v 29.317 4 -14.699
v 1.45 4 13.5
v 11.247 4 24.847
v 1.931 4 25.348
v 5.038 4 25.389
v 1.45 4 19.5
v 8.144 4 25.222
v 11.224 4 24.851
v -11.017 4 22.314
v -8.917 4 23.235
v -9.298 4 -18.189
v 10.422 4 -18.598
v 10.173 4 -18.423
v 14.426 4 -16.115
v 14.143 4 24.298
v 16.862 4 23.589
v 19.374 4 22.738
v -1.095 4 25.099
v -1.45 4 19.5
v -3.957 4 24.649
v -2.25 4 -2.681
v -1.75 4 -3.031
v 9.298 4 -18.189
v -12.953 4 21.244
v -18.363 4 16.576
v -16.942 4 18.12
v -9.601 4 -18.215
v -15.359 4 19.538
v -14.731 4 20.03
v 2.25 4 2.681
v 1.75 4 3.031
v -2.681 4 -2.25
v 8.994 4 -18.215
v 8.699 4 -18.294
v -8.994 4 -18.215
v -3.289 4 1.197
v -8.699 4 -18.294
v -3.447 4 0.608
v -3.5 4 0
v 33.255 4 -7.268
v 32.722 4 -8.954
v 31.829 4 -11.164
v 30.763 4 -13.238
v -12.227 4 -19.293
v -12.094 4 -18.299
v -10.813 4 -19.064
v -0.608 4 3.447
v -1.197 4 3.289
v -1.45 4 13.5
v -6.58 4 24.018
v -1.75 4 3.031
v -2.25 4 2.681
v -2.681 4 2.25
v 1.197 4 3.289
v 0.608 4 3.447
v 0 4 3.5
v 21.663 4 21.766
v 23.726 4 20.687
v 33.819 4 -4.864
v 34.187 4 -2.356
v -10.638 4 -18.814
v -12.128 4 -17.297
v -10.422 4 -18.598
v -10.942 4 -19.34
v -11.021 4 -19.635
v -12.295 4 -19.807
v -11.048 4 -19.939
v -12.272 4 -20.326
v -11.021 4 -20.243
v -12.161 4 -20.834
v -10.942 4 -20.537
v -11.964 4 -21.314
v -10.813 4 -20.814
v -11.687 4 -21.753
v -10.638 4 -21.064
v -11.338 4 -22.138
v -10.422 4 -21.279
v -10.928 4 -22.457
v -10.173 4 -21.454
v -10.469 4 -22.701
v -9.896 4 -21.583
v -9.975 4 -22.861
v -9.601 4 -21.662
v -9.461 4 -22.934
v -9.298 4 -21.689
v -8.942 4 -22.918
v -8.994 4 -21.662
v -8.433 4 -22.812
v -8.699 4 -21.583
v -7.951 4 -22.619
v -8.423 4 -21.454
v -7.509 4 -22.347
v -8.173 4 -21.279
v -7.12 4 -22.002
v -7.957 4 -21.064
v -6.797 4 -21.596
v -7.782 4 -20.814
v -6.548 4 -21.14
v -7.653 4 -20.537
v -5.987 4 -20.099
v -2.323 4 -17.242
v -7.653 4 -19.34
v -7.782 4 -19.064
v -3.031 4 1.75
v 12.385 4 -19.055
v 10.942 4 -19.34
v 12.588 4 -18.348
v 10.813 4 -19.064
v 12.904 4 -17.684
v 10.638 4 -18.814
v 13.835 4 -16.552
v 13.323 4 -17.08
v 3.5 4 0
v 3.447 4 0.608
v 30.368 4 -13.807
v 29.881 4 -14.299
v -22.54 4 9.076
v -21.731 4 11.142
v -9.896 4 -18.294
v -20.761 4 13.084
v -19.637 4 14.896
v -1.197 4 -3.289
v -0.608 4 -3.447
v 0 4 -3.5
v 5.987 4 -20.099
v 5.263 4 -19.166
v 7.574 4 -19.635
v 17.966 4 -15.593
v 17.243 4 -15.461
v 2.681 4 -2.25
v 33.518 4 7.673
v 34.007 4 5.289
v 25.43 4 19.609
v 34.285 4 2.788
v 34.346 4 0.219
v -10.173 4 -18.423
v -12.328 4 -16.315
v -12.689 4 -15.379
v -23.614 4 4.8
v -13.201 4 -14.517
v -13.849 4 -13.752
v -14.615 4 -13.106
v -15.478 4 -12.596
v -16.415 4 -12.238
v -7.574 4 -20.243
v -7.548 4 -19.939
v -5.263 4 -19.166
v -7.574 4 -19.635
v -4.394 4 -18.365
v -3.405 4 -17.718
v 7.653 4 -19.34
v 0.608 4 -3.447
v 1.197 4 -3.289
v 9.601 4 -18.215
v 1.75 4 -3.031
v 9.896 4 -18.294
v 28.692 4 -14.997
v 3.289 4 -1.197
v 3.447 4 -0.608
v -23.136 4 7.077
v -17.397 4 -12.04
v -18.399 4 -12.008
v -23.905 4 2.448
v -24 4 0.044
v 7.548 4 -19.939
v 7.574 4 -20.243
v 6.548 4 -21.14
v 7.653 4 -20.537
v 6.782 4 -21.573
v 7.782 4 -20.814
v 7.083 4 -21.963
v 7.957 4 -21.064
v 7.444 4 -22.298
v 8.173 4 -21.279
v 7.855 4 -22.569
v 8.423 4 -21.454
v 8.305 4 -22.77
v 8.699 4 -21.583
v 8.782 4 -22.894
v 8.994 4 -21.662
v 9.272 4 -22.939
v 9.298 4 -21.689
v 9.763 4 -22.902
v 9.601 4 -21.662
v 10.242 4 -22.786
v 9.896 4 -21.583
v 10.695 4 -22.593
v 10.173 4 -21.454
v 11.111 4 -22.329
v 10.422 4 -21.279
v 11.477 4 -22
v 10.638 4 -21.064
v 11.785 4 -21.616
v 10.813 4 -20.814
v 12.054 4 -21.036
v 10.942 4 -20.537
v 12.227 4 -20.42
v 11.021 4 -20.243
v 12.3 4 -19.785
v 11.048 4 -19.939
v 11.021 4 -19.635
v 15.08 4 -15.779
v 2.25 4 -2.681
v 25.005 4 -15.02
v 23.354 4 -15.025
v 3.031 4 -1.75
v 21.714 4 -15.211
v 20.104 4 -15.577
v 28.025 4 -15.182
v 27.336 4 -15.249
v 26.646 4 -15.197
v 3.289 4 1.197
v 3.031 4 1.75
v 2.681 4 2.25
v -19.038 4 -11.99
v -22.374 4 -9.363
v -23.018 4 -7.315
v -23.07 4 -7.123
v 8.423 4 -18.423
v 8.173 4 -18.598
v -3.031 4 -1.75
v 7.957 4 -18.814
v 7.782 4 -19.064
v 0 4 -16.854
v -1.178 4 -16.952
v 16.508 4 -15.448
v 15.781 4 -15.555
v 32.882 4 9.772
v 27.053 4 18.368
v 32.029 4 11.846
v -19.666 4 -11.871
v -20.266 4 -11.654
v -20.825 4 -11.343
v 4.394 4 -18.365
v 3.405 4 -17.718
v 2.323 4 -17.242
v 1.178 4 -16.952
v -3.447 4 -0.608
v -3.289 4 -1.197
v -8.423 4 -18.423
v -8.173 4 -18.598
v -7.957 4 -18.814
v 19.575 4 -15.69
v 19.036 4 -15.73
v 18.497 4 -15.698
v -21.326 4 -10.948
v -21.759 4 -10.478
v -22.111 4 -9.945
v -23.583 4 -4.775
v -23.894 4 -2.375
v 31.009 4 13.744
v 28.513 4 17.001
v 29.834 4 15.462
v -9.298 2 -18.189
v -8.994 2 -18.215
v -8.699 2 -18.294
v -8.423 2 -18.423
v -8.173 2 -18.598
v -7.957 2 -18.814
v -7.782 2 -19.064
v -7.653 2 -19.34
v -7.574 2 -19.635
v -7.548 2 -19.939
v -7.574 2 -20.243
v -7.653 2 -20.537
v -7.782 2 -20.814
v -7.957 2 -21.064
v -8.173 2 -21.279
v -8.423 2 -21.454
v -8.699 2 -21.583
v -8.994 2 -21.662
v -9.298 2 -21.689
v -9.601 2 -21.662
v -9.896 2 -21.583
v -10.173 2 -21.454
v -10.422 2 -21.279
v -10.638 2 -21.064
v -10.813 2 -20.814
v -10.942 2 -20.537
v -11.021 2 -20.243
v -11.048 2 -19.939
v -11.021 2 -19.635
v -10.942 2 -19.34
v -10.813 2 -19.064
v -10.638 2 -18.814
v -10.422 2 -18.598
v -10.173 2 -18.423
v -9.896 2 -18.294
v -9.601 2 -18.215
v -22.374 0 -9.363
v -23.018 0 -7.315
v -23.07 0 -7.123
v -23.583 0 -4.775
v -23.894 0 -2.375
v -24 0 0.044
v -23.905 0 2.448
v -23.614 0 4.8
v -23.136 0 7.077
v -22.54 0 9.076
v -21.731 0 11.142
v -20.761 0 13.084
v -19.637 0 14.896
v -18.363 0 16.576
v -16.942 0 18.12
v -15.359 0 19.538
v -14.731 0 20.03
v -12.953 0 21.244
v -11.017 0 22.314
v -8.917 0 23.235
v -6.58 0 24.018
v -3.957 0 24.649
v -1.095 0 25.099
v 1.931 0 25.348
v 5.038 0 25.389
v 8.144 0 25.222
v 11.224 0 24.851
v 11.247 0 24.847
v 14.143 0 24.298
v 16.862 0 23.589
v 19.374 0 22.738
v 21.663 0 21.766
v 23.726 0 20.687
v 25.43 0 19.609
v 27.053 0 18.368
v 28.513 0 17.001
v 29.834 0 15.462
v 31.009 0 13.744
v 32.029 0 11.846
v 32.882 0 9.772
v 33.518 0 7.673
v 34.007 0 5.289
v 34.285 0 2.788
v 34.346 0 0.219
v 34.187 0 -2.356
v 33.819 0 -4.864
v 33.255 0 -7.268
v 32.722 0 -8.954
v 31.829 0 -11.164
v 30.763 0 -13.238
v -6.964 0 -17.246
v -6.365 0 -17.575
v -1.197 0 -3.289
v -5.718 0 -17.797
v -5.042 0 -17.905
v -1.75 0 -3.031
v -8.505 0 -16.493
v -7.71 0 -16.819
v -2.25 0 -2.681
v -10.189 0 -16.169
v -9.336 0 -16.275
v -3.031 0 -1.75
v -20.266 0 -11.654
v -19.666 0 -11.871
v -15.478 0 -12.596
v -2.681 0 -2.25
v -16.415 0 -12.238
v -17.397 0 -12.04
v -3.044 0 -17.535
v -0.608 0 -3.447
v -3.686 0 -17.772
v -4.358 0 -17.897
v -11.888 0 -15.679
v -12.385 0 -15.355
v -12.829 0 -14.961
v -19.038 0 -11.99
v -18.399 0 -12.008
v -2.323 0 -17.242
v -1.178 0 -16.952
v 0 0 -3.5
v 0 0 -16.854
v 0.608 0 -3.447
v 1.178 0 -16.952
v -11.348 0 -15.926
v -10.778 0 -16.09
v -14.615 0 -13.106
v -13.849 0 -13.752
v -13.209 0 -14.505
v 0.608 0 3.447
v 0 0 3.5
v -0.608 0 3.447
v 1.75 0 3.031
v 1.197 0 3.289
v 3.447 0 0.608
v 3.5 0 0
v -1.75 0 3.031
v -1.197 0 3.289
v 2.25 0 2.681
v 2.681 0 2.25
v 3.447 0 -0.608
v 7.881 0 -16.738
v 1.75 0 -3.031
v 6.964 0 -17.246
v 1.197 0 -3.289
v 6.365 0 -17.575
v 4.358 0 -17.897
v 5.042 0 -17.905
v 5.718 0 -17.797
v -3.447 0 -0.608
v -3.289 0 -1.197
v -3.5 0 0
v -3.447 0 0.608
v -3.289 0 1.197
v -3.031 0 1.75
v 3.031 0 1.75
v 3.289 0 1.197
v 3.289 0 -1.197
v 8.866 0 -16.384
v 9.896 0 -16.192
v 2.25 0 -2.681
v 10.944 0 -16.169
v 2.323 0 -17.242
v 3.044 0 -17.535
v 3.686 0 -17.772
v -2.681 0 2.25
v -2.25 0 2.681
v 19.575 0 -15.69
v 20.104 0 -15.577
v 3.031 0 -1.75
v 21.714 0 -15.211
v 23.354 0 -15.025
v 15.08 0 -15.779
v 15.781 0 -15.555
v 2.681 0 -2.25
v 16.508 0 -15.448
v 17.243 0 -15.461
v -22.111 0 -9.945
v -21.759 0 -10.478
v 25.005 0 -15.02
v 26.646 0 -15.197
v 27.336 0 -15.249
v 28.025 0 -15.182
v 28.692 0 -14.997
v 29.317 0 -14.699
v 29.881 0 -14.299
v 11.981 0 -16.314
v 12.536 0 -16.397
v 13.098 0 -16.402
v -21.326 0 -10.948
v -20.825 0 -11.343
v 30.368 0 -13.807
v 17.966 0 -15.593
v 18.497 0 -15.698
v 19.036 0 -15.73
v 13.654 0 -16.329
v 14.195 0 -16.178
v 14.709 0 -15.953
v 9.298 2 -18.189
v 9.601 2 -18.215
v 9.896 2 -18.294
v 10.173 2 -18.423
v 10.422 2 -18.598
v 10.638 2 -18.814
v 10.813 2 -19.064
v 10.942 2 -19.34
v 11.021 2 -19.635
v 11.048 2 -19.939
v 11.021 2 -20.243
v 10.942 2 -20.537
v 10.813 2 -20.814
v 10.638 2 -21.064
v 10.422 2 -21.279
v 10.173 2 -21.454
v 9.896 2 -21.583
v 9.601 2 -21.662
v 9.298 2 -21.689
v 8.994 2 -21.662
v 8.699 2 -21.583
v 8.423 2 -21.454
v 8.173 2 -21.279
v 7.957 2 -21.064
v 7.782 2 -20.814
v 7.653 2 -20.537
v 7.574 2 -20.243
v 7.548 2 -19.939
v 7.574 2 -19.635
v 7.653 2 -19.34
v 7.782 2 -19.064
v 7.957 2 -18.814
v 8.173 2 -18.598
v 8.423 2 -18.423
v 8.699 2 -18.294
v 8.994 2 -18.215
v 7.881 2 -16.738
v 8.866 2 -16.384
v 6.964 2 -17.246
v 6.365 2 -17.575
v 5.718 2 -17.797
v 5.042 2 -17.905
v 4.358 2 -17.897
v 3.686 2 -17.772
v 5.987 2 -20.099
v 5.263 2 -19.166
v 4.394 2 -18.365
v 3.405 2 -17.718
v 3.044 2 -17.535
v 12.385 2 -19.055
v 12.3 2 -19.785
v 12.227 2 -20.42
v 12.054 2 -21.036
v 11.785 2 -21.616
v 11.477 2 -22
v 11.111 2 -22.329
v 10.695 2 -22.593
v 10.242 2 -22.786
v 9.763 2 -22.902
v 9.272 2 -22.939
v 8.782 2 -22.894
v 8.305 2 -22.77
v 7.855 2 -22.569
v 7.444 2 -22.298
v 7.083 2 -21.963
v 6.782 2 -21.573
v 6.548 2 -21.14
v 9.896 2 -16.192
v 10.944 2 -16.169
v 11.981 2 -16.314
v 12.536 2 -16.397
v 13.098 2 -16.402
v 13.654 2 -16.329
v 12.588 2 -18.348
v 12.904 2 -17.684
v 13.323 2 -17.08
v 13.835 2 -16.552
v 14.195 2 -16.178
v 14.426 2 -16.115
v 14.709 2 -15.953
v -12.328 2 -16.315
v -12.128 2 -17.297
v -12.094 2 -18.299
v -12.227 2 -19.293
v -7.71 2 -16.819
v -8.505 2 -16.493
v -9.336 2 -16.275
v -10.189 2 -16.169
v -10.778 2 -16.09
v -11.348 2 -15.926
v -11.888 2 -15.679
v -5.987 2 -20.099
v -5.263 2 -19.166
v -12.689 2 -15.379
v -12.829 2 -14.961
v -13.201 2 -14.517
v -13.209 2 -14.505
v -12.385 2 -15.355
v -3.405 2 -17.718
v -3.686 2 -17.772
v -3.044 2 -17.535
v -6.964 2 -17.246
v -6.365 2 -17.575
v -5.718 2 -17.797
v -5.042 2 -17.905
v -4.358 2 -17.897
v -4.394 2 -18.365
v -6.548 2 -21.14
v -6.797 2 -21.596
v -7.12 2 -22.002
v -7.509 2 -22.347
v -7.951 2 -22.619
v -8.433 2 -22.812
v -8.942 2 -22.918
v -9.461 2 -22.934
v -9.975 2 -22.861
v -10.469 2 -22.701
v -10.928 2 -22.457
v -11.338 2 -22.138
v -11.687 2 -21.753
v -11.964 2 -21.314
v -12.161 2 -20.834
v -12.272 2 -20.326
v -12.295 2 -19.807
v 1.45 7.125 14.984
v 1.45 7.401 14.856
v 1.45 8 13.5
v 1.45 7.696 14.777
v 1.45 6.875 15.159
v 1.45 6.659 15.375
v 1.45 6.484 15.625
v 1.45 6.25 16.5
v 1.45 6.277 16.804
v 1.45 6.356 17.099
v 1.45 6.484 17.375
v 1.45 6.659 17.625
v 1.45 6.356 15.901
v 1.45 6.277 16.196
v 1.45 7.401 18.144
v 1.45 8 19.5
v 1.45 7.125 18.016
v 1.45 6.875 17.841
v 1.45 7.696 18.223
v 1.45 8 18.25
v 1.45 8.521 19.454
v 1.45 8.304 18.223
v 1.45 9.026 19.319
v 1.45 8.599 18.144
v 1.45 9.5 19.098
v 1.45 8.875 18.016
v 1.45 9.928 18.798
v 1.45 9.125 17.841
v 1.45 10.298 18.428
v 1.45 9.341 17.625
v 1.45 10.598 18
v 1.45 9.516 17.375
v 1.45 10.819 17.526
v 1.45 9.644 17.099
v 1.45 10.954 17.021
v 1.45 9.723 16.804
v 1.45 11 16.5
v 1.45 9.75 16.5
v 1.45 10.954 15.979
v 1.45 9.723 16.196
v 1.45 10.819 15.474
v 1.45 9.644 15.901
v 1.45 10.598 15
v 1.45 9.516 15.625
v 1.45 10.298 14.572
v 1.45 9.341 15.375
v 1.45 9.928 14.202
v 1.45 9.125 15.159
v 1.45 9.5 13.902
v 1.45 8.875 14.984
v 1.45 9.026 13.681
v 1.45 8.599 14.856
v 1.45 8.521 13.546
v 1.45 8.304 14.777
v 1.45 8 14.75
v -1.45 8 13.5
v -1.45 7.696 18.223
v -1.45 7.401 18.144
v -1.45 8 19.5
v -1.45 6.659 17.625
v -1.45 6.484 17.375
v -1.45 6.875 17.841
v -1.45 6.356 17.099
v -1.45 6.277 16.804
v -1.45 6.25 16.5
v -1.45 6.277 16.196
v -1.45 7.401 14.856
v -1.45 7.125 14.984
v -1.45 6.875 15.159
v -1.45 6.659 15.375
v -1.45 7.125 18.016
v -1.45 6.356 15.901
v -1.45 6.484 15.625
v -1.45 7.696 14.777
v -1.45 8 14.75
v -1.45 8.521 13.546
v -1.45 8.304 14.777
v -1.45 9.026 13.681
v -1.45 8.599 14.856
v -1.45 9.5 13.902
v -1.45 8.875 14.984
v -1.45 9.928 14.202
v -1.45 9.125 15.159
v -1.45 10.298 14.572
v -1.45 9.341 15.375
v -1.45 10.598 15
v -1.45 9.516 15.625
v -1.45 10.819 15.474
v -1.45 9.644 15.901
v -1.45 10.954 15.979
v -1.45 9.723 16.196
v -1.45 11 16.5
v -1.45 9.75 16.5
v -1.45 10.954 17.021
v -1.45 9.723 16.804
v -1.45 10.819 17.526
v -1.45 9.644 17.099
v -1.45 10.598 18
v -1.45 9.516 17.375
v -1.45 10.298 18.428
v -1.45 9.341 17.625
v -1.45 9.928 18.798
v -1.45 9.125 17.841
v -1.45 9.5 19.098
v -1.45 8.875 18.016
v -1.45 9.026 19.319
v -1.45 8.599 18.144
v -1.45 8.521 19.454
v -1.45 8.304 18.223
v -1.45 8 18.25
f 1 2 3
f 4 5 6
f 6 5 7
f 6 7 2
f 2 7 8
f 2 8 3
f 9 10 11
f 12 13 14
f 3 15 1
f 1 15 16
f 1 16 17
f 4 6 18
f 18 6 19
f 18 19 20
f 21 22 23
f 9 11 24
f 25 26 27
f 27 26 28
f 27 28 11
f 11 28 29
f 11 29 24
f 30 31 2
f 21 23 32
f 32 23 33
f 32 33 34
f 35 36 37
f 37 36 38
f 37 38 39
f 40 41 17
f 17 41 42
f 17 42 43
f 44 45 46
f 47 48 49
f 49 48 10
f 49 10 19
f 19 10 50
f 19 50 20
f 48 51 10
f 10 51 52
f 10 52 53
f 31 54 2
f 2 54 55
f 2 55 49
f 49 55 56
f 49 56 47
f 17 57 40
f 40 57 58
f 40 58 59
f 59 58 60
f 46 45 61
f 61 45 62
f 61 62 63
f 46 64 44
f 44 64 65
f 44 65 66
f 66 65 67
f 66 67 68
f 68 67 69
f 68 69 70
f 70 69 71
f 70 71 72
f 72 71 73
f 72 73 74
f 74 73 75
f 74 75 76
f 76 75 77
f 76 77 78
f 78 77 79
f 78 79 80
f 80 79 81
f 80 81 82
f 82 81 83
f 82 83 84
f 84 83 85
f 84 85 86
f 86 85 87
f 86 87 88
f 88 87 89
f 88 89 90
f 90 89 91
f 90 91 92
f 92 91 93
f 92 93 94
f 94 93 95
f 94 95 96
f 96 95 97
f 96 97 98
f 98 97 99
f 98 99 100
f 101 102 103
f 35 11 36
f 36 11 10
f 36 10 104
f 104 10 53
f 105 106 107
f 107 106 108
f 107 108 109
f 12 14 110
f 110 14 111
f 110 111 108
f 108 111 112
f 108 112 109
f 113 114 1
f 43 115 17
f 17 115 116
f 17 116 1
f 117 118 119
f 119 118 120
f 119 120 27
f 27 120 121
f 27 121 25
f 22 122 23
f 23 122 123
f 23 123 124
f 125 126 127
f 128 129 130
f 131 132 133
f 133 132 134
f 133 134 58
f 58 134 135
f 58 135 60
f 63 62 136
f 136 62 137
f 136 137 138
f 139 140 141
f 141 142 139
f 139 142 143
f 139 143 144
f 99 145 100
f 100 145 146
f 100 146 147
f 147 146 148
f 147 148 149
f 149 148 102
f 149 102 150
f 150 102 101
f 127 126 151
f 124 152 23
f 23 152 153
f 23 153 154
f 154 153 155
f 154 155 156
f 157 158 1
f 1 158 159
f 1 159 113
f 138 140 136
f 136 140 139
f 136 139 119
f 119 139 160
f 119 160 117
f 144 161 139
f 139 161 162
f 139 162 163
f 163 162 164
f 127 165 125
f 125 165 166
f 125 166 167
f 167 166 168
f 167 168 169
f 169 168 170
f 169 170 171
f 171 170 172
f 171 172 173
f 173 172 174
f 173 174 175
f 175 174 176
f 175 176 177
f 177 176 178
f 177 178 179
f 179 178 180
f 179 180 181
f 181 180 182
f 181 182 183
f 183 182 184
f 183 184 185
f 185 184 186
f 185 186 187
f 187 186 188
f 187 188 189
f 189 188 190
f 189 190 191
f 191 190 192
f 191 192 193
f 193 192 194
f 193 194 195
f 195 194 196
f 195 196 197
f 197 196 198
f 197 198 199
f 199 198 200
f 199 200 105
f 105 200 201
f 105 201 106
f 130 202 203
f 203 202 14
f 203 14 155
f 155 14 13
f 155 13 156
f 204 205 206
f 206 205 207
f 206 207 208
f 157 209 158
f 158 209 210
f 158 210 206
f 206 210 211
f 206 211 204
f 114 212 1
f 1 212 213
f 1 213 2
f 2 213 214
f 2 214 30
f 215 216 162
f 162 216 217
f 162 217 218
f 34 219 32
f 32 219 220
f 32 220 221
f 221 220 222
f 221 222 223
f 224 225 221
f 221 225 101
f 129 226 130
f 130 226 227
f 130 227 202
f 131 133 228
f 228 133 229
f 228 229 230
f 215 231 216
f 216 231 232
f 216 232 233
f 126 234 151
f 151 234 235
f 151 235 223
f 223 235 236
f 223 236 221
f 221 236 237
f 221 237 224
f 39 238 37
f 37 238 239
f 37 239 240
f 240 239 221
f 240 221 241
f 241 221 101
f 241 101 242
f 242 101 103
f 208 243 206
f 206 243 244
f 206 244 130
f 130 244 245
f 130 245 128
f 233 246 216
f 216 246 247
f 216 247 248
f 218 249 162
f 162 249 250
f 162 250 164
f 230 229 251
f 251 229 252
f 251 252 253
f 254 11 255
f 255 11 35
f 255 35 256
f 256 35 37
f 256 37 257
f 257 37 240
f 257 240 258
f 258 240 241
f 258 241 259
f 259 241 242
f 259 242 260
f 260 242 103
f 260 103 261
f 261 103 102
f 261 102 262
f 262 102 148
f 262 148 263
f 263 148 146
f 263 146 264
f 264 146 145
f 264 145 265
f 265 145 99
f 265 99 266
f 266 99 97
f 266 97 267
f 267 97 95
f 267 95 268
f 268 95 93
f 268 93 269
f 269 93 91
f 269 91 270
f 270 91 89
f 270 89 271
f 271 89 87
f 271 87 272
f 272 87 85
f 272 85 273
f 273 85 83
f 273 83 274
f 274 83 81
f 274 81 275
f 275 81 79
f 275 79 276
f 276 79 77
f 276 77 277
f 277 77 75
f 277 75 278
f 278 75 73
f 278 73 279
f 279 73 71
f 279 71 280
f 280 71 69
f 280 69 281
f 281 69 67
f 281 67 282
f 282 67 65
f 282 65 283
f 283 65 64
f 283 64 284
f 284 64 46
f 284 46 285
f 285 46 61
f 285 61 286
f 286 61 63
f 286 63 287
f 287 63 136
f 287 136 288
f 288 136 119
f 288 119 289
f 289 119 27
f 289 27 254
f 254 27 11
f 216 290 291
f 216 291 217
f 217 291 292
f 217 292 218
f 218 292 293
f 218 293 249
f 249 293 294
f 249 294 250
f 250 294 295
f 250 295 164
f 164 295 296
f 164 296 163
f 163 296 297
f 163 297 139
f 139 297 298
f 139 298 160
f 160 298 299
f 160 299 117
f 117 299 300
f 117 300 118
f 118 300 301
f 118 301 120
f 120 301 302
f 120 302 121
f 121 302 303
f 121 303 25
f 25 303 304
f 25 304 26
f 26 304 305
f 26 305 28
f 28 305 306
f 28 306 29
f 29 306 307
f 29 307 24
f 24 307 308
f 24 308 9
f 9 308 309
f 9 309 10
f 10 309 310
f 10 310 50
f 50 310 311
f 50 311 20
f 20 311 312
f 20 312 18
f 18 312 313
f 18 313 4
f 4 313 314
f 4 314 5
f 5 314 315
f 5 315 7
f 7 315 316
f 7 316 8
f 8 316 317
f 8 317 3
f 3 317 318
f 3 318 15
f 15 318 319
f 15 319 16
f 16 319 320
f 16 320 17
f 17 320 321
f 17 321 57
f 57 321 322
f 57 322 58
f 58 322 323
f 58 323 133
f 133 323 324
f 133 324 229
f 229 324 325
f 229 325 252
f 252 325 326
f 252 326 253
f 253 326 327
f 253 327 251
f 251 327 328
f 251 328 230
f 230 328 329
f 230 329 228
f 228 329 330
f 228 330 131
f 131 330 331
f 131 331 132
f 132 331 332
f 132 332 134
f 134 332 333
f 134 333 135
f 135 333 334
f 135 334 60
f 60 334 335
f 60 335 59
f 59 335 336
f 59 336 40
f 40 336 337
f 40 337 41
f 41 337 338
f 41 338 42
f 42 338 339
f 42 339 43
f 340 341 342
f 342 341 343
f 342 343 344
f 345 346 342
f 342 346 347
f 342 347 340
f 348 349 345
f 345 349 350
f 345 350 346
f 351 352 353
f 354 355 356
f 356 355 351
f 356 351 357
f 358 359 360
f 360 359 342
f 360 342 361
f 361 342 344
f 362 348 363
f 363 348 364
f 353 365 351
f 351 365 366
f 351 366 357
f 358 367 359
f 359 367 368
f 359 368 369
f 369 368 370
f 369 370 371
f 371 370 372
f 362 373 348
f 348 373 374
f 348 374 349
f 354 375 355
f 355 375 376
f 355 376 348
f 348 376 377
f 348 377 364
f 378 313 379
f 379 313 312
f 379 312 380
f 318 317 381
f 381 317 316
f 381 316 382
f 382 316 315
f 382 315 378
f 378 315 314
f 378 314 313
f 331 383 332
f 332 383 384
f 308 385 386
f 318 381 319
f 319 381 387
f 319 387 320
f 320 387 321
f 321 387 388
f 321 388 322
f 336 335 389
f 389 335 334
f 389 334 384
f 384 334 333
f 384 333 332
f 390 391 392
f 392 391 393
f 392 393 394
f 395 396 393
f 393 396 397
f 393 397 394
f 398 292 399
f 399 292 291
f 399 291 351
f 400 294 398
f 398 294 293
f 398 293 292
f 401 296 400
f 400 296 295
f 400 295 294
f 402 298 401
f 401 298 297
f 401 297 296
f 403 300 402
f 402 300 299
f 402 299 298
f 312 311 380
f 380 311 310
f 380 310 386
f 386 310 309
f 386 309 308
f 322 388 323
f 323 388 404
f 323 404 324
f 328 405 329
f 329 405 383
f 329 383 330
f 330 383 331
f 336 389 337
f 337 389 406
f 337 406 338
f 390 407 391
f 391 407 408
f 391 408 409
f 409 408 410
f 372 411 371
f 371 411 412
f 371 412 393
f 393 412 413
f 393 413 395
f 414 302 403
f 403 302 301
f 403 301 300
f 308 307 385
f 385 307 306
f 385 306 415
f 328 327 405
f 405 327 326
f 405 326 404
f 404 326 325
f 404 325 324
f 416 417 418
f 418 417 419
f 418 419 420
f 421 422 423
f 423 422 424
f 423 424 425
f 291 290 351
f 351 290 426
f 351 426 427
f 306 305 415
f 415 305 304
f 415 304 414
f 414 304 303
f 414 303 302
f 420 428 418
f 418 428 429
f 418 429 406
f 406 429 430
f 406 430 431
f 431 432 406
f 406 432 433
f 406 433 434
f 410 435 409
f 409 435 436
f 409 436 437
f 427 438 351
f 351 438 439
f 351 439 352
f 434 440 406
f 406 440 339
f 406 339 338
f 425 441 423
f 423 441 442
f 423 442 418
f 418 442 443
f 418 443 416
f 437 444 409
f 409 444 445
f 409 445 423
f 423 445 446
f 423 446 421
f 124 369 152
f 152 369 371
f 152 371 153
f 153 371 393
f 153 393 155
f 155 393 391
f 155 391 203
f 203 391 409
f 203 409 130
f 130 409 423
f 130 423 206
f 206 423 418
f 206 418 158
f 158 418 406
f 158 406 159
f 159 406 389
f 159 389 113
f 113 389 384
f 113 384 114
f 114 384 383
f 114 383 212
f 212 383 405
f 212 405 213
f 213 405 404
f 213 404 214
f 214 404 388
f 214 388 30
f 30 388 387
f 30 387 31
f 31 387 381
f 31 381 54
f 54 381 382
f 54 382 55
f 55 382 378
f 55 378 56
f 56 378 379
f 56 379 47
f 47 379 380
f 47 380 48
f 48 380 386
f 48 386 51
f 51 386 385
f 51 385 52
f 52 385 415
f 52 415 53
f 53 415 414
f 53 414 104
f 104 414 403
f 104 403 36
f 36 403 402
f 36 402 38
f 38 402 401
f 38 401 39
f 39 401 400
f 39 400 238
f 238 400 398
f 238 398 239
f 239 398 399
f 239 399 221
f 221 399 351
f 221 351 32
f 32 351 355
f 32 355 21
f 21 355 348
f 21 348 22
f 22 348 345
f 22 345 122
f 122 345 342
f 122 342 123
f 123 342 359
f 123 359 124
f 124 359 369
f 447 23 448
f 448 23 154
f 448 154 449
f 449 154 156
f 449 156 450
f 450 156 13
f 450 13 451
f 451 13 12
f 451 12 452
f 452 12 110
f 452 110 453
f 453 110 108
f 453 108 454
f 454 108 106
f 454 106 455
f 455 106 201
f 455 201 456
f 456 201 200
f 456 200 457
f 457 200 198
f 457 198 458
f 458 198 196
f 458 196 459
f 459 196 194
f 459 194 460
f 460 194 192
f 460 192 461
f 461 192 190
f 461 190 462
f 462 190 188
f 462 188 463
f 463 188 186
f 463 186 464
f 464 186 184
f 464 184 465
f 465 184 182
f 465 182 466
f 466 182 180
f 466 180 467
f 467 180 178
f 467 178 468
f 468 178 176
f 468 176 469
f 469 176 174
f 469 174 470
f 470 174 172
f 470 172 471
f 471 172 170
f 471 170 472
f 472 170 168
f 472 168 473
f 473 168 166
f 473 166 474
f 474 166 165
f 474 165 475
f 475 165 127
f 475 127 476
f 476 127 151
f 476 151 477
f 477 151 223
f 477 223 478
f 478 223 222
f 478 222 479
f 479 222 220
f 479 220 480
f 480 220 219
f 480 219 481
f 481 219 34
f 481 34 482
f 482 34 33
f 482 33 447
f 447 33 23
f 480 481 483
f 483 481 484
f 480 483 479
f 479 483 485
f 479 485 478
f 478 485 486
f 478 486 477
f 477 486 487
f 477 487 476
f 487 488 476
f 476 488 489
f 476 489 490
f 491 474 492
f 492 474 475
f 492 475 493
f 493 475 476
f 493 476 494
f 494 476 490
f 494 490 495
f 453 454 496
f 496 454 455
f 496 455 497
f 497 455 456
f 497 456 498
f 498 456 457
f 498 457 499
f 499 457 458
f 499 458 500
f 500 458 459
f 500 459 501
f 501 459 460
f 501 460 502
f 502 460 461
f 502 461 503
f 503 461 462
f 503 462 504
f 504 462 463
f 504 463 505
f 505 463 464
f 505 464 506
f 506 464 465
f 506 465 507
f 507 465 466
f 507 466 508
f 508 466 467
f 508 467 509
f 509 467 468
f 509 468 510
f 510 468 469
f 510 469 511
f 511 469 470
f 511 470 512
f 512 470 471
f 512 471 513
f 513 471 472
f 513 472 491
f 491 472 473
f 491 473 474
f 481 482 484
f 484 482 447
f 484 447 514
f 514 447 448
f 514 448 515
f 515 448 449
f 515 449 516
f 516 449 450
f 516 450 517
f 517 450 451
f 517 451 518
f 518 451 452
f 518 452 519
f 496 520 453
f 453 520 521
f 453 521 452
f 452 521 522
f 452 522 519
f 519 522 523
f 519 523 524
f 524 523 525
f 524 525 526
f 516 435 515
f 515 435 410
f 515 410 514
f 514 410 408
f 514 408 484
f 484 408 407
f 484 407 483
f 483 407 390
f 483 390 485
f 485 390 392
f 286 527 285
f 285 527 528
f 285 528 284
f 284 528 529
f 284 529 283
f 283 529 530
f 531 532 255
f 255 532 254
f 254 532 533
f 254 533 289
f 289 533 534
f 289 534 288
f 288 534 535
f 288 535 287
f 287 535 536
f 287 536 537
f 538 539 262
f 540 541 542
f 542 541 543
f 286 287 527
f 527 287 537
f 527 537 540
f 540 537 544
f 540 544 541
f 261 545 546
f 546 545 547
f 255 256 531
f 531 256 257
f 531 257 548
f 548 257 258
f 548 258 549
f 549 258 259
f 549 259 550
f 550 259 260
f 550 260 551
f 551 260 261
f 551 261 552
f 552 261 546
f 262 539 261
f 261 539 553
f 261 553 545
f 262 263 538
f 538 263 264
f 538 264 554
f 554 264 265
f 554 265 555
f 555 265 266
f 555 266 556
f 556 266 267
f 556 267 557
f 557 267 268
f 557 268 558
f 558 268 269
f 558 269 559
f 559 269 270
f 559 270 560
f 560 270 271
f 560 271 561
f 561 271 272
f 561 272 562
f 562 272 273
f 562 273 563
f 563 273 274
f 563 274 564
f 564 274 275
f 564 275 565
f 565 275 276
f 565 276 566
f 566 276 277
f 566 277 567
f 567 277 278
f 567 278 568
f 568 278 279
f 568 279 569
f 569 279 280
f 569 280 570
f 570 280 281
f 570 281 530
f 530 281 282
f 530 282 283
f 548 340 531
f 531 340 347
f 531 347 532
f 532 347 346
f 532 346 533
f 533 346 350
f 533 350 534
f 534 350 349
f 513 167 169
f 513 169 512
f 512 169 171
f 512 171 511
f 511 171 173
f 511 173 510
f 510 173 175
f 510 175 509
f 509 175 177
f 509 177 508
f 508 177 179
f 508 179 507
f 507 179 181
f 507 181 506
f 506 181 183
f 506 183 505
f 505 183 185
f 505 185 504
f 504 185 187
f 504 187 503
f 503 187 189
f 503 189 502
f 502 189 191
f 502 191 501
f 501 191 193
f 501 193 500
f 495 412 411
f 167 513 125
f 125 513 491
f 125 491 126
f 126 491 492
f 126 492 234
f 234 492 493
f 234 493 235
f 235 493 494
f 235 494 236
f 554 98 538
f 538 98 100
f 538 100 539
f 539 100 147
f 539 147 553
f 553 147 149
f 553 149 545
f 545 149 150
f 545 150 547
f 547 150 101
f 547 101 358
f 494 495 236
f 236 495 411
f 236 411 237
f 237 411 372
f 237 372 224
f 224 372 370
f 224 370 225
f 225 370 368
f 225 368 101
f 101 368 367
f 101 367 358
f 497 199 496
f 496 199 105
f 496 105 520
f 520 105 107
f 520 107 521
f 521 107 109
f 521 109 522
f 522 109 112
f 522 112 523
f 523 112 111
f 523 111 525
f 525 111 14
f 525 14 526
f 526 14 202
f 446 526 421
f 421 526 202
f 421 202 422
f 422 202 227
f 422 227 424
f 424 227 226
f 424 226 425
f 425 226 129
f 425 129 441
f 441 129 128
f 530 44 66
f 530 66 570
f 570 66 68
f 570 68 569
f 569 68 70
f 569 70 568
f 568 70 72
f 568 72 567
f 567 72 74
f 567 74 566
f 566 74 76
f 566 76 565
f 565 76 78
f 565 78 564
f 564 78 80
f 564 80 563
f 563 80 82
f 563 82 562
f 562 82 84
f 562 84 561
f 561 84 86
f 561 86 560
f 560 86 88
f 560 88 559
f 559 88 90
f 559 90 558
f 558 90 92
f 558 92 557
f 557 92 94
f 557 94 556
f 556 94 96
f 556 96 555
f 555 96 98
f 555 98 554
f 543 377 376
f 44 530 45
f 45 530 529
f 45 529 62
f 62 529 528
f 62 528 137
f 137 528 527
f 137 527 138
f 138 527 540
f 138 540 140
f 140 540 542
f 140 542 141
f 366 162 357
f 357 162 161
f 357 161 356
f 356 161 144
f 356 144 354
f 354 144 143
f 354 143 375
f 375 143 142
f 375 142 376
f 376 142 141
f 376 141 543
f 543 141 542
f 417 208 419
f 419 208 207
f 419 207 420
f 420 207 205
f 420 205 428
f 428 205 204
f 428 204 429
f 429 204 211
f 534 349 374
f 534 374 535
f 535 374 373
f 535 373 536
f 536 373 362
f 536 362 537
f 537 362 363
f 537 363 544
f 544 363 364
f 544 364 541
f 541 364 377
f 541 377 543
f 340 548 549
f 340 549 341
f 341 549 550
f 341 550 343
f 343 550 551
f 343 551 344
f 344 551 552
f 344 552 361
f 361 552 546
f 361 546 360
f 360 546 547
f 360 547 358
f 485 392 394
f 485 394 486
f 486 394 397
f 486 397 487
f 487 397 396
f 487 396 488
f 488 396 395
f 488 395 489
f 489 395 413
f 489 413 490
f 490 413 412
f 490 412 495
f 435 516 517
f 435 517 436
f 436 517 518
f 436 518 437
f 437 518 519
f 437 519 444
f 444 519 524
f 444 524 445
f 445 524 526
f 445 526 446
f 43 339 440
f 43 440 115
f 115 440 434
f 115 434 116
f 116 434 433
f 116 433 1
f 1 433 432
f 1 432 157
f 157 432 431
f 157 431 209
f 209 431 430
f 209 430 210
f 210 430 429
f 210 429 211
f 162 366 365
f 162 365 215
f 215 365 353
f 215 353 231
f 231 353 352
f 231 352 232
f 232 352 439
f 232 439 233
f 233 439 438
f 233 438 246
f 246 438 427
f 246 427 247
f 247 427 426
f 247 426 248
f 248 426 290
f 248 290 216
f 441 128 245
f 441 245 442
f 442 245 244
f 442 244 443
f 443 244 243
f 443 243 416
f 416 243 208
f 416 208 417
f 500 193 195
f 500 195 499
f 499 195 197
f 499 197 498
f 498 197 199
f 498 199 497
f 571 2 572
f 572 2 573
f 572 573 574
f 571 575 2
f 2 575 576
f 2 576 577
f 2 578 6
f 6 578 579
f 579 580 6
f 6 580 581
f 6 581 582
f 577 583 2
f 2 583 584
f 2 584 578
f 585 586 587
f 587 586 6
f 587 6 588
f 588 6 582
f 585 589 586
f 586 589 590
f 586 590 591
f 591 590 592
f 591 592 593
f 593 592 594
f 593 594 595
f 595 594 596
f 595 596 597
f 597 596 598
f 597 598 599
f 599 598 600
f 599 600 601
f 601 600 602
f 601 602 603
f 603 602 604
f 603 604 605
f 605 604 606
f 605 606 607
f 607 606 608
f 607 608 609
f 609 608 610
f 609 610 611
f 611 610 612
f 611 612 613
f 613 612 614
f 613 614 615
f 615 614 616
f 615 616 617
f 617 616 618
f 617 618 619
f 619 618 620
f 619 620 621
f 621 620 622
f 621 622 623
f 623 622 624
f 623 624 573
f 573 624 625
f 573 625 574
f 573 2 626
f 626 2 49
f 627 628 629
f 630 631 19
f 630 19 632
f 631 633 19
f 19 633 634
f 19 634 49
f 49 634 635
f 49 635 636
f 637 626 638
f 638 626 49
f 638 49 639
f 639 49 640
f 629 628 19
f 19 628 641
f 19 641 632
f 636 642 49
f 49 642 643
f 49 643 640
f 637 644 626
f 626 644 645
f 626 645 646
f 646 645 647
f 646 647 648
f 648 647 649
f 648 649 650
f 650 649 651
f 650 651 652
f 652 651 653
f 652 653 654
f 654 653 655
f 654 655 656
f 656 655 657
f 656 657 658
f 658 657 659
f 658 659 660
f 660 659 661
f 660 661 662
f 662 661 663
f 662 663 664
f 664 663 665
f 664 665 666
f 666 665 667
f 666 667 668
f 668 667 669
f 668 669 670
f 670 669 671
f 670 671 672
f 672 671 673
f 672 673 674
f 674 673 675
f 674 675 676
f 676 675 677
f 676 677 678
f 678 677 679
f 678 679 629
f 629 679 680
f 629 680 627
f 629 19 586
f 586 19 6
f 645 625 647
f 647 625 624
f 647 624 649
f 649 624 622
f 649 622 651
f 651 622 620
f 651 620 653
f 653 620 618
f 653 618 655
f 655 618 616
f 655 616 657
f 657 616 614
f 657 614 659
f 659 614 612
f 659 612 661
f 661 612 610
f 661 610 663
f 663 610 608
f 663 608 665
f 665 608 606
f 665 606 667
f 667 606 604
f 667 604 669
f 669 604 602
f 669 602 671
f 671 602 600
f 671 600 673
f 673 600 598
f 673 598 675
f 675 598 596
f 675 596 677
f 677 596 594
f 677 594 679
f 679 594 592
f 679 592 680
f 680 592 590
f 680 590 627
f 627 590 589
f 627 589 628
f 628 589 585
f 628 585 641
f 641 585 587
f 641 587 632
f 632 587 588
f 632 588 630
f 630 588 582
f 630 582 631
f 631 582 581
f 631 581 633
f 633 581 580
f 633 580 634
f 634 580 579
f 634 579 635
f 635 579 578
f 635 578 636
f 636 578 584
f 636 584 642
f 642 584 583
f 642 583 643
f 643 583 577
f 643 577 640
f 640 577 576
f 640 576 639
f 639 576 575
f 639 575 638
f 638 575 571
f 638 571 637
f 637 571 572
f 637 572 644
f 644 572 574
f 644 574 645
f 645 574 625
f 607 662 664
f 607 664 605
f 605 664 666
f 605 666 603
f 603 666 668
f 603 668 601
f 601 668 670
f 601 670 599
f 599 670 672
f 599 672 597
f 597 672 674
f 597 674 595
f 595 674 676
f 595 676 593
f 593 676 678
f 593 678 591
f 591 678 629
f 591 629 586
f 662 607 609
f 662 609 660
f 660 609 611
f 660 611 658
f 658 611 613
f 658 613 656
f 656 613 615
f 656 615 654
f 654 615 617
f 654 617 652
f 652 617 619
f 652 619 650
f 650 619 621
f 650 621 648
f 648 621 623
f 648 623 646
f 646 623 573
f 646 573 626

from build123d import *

# Parameters (mm, degrees)
BOSS_EXTRUDE1_DEPTH = 4
SKETCH53_R          = 3.5
CUT_EXTRUDE1_DEPTH  = 45.101345066
CUT_EXTRUDE2_REACH  = 46.101
SKETCH54_R          = 1.75
SKETCH55_R          = 6.5
CUT_EXTRUDE3_DEPTH  = 2
CUT_EXTRUDE4_REACH  = 46.101
FILLET1_START       = -1
FILLET1_DEPTH       = 6
FILLET1_2_DEPTH     = 3
SKETCH58_W          = 2.9
SKETCH58_H          = 6
BOSS_EXTRUDE3_DEPTH = 7
CUT_EXTRUDE5_REACH  = 44.995
SKETCH59_R          = 1.75
FILLET2_R           = 3


with BuildPart() as part:
    # Sketch1 → Boss-Extrude1 (new body)
    with BuildSketch(Plane.XZ):
        with BuildLine():
            add(Edge.make_bspline(
                [(-5, -26), (9.300931515, -30.45506709), (37.813922586, -21.505733488), (32.92542111, 23.636947818), (-15.261637243, 29.425031653), (-30.000918398, -3.863065553), (-16.359607573, -22.461222558), (-5, -26)],
                knots=[0, 0, 0, 0, 0.296836273, 0.417767996, 0.576795533, 0.764215109, 1, 1, 1, 1], degree=3))
        make_face()
    extrude(amount=-BOSS_EXTRUDE1_DEPTH)

    # Sketch53 → Cut-Extrude1 (cut, through all)
    with BuildSketch(Plane.XZ):
        with Locations(Location((0, 0, 0), (0, 0, 270))):
            Circle(SKETCH53_R)
    extrude(amount=-CUT_EXTRUDE1_DEPTH, mode=Mode.SUBTRACT)

    # Sketch54 → Cut-Extrude2 (cut, up to next)
    with BuildSketch(Plane(origin=(0, 4, 0), x_dir=(1, 0, 0), z_dir=(0, 1, 0)), mode=Mode.PRIVATE) as cut_extrude2_sk1:
        with Locations(Location((9.297601758, 19.938771315, 0), (0, 0, 270))):
            Circle(SKETCH54_R)
    cut_extrude2_tool1 = extrude(cut_extrude2_sk1.sketch, amount=-CUT_EXTRUDE2_REACH, mode=Mode.PRIVATE) & part.part
    # Sketch54 → Cut-Extrude2 (cut, up to next)
    with BuildSketch(Plane(origin=(0, 4, 0), x_dir=(1, 0, 0), z_dir=(0, 1, 0)), mode=Mode.PRIVATE) as cut_extrude2_sk2:
        with Locations(Location((-9.297601758, 19.938771315, 0), (0, 0, 270))):
            Circle(SKETCH54_R)
    cut_extrude2_tool2 = extrude(cut_extrude2_sk2.sketch, amount=-CUT_EXTRUDE2_REACH, mode=Mode.PRIVATE) & part.part
    add(cut_extrude2_tool1.solids().sort_by_distance((9.297602, 4, -19.938771))[0], mode=Mode.SUBTRACT)
    add(cut_extrude2_tool2.solids().sort_by_distance((-9.297602, 4, -19.938771))[0], mode=Mode.SUBTRACT)

    # Sketch55 → Cut-Extrude3 (cut)
    with BuildSketch(Plane.XZ):
        with Locations((-10.565456544, -22.657694676)):
            Circle(SKETCH55_R)
        with Locations((10.565456544, -22.657694676)):
            Circle(SKETCH55_R)
    extrude(amount=-CUT_EXTRUDE3_DEPTH, mode=Mode.SUBTRACT)

    # Sketch57 → Cut-Extrude4 (cut, up to next)
    with BuildSketch(Plane(origin=(0, 4, 0), x_dir=(1, 0, 0), z_dir=(0, 1, 0)), mode=Mode.PRIVATE) as cut_extrude4_sk1:
        with BuildLine():
            Line((-22.060581865, 22.49500396), (0, 42))
            Line((0, 42), (22.304364574, 44.876770574))
            ThreePointArc((22.304364574, 44.876770574), (39.121251811, 28.254649022), (18.917811778, 15.969551055))
            ThreePointArc((18.917811778, 15.969551055), (14.125407881, 16.318083551), (12.379781382, 20.794845567))
            ThreePointArc((12.379781382, 20.794845567), (12.075551875, 21.200220769), (11.785191385, 21.615642762))
            ThreePointArc((11.785191385, 21.615642762), (9.026021701, 22.926453405), (6.548427485, 21.139621352))
            ThreePointArc((6.548427485, 21.139621352), (0, 16.854115273), (-6.548427485, 21.139621352))
            ThreePointArc((-6.548427485, 21.139621352), (-10.225549177, 22.791649438), (-12.227166872, 19.29251421))
            ThreePointArc((-12.227166872, 19.29251421), (-19.944292188, 12.294927323), (-22.060581865, 22.49500396))
        make_face()
    cut_extrude4_tool1 = extrude(cut_extrude4_sk1.sketch, amount=-CUT_EXTRUDE4_REACH, mode=Mode.PRIVATE) & part.part
    add(cut_extrude4_tool1.solids().sort_by_distance((11.409927, 4, -28.912767))[0], mode=Mode.SUBTRACT)

    # Fillet1: read off the stored shape, not the designer's step
    # Fillet1 outline → Fillet1 (cut)
    with BuildSketch(Plane(origin=(0, 0, 0), x_dir=(1, 0, 0), z_dir=(0, 1, 0)).offset(FILLET1_START)):
        with BuildLine():
            ThreePointArc((-22.373774965, 9.362614286), (-20.824572083, 11.343383608), (-18.39938548, 12.008174263))
            ThreePointArc((-18.39938548, 12.008174263), (-19.695855613, 12.219920296), (-20.915171058, 12.708736245))
            Line((-20.915171058, 12.708736245), (-24, 14.357981617))
            Line((-24, 14.357981617), (-24, 8.283982068))
            Line((-24, 8.283982068), (-22.652447274, 8.584709442))
            Line((-22.652447274, 8.584709442), (-22.373774965, 9.362614286))
        make_face()
        with BuildLine():
            ThreePointArc((11.785191385, 21.615642762), (12.153103234, 20.731309712), (12.300234414, 19.784865583))
            ThreePointArc((12.300234414, 19.784865583), (12.311494547, 20.292101313), (12.379781382, 20.794845567))
            ThreePointArc((12.379781382, 20.794845567), (12.075551875, 21.200220769), (11.785191385, 21.615642762))
        make_face()
        with BuildLine():
            ThreePointArc((18.917811778, 15.969551055), (18.452844275, 15.754255547), (17.966416089, 15.593213461))
            ThreePointArc((17.966416089, 15.593213461), (19.036251843, 15.730376095), (20.103841604, 15.57670687))
            ThreePointArc((20.103841604, 15.57670687), (19.506734762, 15.760775084), (18.917811778, 15.969551055))
        make_face()
        with BuildLine():
            Line((32, 12.179159592), (32, 16.806756394))
            Line((32, 16.806756394), (29.077324798, 15.80715373))
            ThreePointArc((29.077324798, 15.80715373), (27.874565267, 15.45121689), (26.646272996, 15.197013))
            ThreePointArc((26.646272996, 15.197013), (29.011043988, 14.861530827), (30.763059215, 13.238221621))
            Line((30.763059215, 13.238221621), (31.24661263, 12.394327306))
            Line((31.24661263, 12.394327306), (32, 12.179159592))
        make_face()
    extrude(amount=FILLET1_DEPTH, mode=Mode.SUBTRACT)

    # Fillet1 2 outline → Fillet1 2 (cut)
    with BuildSketch(Plane(origin=(0, 0, 0), x_dir=(1, 0, 0), z_dir=(0, 1, 0)).offset(FILLET1_START)):
        with BuildLine():
            ThreePointArc((-12.305007931, 16.394791118), (-12.673993332, 15.410218555), (-13.209186576, 14.505176264))
            ThreePointArc((-13.209186576, 14.505176264), (-11.887647204, 15.67895056), (-10.189275554, 16.168589355))
            ThreePointArc((-10.189275554, 16.168589355), (-11.256460538, 16.194528773), (-12.305007931, 16.394791118))
        make_face()
        with BuildLine():
            ThreePointArc((-5.156588961, 19.052954537), (-5.970866268, 18.059897356), (-6.964491378, 17.246313163))
            ThreePointArc((-6.964491378, 17.246313163), (-5.042351245, 17.905425005), (-3.044381494, 17.535063044))
            ThreePointArc((-3.044381494, 17.535063044), (-4.170129225, 18.197096349), (-5.156588961, 19.052954537))
        make_face()
        with BuildLine():
            ThreePointArc((5.156588961, 19.052954537), (4.170129225, 18.197096349), (3.044381494, 17.535063044))
            ThreePointArc((3.044381494, 17.535063044), (5.042351245, 17.905425005), (6.964491378, 17.246313163))
            ThreePointArc((6.964491378, 17.246313163), (5.970866268, 18.059897356), (5.156588961, 19.052954537))
        make_face()
        with BuildLine():
            ThreePointArc((11.981206879, 16.313748665), (13.377106137, 16.375222999), (14.708985574, 15.952835737))
            ThreePointArc((14.708985574, 15.952835737), (14.072149248, 16.358002038), (13.51199171, 16.863910894))
            ThreePointArc((13.51199171, 16.863910894), (12.763877186, 16.540755353), (11.981206879, 16.313748665))
        make_face()
    extrude(amount=FILLET1_2_DEPTH, mode=Mode.SUBTRACT)

    # Sketch58 → Boss-Extrude3 (add)
    with BuildSketch(Plane(origin=(0, 4, 0), x_dir=(1, 0, 0), z_dir=(0, 1, 0))):
        with Locations((0, -16.5)):
            Rectangle(SKETCH58_W, SKETCH58_H)
    extrude(amount=BOSS_EXTRUDE3_DEPTH)

    # Sketch59 → Cut-Extrude5 (cut, up to next)
    with BuildSketch(Plane(origin=(1.45, 0, 0), x_dir=(0, 0, -1), z_dir=(1, 0, 0)), mode=Mode.PRIVATE) as cut_extrude5_sk1:
        with Locations((-16.5, 8)):
            Circle(SKETCH59_R)
    cut_extrude5_tool1 = extrude(cut_extrude5_sk1.sketch, amount=-CUT_EXTRUDE5_REACH, mode=Mode.PRIVATE) & part.part
    add(cut_extrude5_tool1.solids().sort_by_distance((1.45, 8, 16.5))[0], mode=Mode.SUBTRACT)

    # Fillet2
    fillet2_edges = [part.edges().sort_by_distance(p)[0] for p in [
        (0, 11, 13.5),
        (0, 11, 19.5),
    ]]
    fillet(fillet2_edges, radius=FILLET2_R - 0.0001)  # a hair under: the kernel refuses the full size


solid = part.part
